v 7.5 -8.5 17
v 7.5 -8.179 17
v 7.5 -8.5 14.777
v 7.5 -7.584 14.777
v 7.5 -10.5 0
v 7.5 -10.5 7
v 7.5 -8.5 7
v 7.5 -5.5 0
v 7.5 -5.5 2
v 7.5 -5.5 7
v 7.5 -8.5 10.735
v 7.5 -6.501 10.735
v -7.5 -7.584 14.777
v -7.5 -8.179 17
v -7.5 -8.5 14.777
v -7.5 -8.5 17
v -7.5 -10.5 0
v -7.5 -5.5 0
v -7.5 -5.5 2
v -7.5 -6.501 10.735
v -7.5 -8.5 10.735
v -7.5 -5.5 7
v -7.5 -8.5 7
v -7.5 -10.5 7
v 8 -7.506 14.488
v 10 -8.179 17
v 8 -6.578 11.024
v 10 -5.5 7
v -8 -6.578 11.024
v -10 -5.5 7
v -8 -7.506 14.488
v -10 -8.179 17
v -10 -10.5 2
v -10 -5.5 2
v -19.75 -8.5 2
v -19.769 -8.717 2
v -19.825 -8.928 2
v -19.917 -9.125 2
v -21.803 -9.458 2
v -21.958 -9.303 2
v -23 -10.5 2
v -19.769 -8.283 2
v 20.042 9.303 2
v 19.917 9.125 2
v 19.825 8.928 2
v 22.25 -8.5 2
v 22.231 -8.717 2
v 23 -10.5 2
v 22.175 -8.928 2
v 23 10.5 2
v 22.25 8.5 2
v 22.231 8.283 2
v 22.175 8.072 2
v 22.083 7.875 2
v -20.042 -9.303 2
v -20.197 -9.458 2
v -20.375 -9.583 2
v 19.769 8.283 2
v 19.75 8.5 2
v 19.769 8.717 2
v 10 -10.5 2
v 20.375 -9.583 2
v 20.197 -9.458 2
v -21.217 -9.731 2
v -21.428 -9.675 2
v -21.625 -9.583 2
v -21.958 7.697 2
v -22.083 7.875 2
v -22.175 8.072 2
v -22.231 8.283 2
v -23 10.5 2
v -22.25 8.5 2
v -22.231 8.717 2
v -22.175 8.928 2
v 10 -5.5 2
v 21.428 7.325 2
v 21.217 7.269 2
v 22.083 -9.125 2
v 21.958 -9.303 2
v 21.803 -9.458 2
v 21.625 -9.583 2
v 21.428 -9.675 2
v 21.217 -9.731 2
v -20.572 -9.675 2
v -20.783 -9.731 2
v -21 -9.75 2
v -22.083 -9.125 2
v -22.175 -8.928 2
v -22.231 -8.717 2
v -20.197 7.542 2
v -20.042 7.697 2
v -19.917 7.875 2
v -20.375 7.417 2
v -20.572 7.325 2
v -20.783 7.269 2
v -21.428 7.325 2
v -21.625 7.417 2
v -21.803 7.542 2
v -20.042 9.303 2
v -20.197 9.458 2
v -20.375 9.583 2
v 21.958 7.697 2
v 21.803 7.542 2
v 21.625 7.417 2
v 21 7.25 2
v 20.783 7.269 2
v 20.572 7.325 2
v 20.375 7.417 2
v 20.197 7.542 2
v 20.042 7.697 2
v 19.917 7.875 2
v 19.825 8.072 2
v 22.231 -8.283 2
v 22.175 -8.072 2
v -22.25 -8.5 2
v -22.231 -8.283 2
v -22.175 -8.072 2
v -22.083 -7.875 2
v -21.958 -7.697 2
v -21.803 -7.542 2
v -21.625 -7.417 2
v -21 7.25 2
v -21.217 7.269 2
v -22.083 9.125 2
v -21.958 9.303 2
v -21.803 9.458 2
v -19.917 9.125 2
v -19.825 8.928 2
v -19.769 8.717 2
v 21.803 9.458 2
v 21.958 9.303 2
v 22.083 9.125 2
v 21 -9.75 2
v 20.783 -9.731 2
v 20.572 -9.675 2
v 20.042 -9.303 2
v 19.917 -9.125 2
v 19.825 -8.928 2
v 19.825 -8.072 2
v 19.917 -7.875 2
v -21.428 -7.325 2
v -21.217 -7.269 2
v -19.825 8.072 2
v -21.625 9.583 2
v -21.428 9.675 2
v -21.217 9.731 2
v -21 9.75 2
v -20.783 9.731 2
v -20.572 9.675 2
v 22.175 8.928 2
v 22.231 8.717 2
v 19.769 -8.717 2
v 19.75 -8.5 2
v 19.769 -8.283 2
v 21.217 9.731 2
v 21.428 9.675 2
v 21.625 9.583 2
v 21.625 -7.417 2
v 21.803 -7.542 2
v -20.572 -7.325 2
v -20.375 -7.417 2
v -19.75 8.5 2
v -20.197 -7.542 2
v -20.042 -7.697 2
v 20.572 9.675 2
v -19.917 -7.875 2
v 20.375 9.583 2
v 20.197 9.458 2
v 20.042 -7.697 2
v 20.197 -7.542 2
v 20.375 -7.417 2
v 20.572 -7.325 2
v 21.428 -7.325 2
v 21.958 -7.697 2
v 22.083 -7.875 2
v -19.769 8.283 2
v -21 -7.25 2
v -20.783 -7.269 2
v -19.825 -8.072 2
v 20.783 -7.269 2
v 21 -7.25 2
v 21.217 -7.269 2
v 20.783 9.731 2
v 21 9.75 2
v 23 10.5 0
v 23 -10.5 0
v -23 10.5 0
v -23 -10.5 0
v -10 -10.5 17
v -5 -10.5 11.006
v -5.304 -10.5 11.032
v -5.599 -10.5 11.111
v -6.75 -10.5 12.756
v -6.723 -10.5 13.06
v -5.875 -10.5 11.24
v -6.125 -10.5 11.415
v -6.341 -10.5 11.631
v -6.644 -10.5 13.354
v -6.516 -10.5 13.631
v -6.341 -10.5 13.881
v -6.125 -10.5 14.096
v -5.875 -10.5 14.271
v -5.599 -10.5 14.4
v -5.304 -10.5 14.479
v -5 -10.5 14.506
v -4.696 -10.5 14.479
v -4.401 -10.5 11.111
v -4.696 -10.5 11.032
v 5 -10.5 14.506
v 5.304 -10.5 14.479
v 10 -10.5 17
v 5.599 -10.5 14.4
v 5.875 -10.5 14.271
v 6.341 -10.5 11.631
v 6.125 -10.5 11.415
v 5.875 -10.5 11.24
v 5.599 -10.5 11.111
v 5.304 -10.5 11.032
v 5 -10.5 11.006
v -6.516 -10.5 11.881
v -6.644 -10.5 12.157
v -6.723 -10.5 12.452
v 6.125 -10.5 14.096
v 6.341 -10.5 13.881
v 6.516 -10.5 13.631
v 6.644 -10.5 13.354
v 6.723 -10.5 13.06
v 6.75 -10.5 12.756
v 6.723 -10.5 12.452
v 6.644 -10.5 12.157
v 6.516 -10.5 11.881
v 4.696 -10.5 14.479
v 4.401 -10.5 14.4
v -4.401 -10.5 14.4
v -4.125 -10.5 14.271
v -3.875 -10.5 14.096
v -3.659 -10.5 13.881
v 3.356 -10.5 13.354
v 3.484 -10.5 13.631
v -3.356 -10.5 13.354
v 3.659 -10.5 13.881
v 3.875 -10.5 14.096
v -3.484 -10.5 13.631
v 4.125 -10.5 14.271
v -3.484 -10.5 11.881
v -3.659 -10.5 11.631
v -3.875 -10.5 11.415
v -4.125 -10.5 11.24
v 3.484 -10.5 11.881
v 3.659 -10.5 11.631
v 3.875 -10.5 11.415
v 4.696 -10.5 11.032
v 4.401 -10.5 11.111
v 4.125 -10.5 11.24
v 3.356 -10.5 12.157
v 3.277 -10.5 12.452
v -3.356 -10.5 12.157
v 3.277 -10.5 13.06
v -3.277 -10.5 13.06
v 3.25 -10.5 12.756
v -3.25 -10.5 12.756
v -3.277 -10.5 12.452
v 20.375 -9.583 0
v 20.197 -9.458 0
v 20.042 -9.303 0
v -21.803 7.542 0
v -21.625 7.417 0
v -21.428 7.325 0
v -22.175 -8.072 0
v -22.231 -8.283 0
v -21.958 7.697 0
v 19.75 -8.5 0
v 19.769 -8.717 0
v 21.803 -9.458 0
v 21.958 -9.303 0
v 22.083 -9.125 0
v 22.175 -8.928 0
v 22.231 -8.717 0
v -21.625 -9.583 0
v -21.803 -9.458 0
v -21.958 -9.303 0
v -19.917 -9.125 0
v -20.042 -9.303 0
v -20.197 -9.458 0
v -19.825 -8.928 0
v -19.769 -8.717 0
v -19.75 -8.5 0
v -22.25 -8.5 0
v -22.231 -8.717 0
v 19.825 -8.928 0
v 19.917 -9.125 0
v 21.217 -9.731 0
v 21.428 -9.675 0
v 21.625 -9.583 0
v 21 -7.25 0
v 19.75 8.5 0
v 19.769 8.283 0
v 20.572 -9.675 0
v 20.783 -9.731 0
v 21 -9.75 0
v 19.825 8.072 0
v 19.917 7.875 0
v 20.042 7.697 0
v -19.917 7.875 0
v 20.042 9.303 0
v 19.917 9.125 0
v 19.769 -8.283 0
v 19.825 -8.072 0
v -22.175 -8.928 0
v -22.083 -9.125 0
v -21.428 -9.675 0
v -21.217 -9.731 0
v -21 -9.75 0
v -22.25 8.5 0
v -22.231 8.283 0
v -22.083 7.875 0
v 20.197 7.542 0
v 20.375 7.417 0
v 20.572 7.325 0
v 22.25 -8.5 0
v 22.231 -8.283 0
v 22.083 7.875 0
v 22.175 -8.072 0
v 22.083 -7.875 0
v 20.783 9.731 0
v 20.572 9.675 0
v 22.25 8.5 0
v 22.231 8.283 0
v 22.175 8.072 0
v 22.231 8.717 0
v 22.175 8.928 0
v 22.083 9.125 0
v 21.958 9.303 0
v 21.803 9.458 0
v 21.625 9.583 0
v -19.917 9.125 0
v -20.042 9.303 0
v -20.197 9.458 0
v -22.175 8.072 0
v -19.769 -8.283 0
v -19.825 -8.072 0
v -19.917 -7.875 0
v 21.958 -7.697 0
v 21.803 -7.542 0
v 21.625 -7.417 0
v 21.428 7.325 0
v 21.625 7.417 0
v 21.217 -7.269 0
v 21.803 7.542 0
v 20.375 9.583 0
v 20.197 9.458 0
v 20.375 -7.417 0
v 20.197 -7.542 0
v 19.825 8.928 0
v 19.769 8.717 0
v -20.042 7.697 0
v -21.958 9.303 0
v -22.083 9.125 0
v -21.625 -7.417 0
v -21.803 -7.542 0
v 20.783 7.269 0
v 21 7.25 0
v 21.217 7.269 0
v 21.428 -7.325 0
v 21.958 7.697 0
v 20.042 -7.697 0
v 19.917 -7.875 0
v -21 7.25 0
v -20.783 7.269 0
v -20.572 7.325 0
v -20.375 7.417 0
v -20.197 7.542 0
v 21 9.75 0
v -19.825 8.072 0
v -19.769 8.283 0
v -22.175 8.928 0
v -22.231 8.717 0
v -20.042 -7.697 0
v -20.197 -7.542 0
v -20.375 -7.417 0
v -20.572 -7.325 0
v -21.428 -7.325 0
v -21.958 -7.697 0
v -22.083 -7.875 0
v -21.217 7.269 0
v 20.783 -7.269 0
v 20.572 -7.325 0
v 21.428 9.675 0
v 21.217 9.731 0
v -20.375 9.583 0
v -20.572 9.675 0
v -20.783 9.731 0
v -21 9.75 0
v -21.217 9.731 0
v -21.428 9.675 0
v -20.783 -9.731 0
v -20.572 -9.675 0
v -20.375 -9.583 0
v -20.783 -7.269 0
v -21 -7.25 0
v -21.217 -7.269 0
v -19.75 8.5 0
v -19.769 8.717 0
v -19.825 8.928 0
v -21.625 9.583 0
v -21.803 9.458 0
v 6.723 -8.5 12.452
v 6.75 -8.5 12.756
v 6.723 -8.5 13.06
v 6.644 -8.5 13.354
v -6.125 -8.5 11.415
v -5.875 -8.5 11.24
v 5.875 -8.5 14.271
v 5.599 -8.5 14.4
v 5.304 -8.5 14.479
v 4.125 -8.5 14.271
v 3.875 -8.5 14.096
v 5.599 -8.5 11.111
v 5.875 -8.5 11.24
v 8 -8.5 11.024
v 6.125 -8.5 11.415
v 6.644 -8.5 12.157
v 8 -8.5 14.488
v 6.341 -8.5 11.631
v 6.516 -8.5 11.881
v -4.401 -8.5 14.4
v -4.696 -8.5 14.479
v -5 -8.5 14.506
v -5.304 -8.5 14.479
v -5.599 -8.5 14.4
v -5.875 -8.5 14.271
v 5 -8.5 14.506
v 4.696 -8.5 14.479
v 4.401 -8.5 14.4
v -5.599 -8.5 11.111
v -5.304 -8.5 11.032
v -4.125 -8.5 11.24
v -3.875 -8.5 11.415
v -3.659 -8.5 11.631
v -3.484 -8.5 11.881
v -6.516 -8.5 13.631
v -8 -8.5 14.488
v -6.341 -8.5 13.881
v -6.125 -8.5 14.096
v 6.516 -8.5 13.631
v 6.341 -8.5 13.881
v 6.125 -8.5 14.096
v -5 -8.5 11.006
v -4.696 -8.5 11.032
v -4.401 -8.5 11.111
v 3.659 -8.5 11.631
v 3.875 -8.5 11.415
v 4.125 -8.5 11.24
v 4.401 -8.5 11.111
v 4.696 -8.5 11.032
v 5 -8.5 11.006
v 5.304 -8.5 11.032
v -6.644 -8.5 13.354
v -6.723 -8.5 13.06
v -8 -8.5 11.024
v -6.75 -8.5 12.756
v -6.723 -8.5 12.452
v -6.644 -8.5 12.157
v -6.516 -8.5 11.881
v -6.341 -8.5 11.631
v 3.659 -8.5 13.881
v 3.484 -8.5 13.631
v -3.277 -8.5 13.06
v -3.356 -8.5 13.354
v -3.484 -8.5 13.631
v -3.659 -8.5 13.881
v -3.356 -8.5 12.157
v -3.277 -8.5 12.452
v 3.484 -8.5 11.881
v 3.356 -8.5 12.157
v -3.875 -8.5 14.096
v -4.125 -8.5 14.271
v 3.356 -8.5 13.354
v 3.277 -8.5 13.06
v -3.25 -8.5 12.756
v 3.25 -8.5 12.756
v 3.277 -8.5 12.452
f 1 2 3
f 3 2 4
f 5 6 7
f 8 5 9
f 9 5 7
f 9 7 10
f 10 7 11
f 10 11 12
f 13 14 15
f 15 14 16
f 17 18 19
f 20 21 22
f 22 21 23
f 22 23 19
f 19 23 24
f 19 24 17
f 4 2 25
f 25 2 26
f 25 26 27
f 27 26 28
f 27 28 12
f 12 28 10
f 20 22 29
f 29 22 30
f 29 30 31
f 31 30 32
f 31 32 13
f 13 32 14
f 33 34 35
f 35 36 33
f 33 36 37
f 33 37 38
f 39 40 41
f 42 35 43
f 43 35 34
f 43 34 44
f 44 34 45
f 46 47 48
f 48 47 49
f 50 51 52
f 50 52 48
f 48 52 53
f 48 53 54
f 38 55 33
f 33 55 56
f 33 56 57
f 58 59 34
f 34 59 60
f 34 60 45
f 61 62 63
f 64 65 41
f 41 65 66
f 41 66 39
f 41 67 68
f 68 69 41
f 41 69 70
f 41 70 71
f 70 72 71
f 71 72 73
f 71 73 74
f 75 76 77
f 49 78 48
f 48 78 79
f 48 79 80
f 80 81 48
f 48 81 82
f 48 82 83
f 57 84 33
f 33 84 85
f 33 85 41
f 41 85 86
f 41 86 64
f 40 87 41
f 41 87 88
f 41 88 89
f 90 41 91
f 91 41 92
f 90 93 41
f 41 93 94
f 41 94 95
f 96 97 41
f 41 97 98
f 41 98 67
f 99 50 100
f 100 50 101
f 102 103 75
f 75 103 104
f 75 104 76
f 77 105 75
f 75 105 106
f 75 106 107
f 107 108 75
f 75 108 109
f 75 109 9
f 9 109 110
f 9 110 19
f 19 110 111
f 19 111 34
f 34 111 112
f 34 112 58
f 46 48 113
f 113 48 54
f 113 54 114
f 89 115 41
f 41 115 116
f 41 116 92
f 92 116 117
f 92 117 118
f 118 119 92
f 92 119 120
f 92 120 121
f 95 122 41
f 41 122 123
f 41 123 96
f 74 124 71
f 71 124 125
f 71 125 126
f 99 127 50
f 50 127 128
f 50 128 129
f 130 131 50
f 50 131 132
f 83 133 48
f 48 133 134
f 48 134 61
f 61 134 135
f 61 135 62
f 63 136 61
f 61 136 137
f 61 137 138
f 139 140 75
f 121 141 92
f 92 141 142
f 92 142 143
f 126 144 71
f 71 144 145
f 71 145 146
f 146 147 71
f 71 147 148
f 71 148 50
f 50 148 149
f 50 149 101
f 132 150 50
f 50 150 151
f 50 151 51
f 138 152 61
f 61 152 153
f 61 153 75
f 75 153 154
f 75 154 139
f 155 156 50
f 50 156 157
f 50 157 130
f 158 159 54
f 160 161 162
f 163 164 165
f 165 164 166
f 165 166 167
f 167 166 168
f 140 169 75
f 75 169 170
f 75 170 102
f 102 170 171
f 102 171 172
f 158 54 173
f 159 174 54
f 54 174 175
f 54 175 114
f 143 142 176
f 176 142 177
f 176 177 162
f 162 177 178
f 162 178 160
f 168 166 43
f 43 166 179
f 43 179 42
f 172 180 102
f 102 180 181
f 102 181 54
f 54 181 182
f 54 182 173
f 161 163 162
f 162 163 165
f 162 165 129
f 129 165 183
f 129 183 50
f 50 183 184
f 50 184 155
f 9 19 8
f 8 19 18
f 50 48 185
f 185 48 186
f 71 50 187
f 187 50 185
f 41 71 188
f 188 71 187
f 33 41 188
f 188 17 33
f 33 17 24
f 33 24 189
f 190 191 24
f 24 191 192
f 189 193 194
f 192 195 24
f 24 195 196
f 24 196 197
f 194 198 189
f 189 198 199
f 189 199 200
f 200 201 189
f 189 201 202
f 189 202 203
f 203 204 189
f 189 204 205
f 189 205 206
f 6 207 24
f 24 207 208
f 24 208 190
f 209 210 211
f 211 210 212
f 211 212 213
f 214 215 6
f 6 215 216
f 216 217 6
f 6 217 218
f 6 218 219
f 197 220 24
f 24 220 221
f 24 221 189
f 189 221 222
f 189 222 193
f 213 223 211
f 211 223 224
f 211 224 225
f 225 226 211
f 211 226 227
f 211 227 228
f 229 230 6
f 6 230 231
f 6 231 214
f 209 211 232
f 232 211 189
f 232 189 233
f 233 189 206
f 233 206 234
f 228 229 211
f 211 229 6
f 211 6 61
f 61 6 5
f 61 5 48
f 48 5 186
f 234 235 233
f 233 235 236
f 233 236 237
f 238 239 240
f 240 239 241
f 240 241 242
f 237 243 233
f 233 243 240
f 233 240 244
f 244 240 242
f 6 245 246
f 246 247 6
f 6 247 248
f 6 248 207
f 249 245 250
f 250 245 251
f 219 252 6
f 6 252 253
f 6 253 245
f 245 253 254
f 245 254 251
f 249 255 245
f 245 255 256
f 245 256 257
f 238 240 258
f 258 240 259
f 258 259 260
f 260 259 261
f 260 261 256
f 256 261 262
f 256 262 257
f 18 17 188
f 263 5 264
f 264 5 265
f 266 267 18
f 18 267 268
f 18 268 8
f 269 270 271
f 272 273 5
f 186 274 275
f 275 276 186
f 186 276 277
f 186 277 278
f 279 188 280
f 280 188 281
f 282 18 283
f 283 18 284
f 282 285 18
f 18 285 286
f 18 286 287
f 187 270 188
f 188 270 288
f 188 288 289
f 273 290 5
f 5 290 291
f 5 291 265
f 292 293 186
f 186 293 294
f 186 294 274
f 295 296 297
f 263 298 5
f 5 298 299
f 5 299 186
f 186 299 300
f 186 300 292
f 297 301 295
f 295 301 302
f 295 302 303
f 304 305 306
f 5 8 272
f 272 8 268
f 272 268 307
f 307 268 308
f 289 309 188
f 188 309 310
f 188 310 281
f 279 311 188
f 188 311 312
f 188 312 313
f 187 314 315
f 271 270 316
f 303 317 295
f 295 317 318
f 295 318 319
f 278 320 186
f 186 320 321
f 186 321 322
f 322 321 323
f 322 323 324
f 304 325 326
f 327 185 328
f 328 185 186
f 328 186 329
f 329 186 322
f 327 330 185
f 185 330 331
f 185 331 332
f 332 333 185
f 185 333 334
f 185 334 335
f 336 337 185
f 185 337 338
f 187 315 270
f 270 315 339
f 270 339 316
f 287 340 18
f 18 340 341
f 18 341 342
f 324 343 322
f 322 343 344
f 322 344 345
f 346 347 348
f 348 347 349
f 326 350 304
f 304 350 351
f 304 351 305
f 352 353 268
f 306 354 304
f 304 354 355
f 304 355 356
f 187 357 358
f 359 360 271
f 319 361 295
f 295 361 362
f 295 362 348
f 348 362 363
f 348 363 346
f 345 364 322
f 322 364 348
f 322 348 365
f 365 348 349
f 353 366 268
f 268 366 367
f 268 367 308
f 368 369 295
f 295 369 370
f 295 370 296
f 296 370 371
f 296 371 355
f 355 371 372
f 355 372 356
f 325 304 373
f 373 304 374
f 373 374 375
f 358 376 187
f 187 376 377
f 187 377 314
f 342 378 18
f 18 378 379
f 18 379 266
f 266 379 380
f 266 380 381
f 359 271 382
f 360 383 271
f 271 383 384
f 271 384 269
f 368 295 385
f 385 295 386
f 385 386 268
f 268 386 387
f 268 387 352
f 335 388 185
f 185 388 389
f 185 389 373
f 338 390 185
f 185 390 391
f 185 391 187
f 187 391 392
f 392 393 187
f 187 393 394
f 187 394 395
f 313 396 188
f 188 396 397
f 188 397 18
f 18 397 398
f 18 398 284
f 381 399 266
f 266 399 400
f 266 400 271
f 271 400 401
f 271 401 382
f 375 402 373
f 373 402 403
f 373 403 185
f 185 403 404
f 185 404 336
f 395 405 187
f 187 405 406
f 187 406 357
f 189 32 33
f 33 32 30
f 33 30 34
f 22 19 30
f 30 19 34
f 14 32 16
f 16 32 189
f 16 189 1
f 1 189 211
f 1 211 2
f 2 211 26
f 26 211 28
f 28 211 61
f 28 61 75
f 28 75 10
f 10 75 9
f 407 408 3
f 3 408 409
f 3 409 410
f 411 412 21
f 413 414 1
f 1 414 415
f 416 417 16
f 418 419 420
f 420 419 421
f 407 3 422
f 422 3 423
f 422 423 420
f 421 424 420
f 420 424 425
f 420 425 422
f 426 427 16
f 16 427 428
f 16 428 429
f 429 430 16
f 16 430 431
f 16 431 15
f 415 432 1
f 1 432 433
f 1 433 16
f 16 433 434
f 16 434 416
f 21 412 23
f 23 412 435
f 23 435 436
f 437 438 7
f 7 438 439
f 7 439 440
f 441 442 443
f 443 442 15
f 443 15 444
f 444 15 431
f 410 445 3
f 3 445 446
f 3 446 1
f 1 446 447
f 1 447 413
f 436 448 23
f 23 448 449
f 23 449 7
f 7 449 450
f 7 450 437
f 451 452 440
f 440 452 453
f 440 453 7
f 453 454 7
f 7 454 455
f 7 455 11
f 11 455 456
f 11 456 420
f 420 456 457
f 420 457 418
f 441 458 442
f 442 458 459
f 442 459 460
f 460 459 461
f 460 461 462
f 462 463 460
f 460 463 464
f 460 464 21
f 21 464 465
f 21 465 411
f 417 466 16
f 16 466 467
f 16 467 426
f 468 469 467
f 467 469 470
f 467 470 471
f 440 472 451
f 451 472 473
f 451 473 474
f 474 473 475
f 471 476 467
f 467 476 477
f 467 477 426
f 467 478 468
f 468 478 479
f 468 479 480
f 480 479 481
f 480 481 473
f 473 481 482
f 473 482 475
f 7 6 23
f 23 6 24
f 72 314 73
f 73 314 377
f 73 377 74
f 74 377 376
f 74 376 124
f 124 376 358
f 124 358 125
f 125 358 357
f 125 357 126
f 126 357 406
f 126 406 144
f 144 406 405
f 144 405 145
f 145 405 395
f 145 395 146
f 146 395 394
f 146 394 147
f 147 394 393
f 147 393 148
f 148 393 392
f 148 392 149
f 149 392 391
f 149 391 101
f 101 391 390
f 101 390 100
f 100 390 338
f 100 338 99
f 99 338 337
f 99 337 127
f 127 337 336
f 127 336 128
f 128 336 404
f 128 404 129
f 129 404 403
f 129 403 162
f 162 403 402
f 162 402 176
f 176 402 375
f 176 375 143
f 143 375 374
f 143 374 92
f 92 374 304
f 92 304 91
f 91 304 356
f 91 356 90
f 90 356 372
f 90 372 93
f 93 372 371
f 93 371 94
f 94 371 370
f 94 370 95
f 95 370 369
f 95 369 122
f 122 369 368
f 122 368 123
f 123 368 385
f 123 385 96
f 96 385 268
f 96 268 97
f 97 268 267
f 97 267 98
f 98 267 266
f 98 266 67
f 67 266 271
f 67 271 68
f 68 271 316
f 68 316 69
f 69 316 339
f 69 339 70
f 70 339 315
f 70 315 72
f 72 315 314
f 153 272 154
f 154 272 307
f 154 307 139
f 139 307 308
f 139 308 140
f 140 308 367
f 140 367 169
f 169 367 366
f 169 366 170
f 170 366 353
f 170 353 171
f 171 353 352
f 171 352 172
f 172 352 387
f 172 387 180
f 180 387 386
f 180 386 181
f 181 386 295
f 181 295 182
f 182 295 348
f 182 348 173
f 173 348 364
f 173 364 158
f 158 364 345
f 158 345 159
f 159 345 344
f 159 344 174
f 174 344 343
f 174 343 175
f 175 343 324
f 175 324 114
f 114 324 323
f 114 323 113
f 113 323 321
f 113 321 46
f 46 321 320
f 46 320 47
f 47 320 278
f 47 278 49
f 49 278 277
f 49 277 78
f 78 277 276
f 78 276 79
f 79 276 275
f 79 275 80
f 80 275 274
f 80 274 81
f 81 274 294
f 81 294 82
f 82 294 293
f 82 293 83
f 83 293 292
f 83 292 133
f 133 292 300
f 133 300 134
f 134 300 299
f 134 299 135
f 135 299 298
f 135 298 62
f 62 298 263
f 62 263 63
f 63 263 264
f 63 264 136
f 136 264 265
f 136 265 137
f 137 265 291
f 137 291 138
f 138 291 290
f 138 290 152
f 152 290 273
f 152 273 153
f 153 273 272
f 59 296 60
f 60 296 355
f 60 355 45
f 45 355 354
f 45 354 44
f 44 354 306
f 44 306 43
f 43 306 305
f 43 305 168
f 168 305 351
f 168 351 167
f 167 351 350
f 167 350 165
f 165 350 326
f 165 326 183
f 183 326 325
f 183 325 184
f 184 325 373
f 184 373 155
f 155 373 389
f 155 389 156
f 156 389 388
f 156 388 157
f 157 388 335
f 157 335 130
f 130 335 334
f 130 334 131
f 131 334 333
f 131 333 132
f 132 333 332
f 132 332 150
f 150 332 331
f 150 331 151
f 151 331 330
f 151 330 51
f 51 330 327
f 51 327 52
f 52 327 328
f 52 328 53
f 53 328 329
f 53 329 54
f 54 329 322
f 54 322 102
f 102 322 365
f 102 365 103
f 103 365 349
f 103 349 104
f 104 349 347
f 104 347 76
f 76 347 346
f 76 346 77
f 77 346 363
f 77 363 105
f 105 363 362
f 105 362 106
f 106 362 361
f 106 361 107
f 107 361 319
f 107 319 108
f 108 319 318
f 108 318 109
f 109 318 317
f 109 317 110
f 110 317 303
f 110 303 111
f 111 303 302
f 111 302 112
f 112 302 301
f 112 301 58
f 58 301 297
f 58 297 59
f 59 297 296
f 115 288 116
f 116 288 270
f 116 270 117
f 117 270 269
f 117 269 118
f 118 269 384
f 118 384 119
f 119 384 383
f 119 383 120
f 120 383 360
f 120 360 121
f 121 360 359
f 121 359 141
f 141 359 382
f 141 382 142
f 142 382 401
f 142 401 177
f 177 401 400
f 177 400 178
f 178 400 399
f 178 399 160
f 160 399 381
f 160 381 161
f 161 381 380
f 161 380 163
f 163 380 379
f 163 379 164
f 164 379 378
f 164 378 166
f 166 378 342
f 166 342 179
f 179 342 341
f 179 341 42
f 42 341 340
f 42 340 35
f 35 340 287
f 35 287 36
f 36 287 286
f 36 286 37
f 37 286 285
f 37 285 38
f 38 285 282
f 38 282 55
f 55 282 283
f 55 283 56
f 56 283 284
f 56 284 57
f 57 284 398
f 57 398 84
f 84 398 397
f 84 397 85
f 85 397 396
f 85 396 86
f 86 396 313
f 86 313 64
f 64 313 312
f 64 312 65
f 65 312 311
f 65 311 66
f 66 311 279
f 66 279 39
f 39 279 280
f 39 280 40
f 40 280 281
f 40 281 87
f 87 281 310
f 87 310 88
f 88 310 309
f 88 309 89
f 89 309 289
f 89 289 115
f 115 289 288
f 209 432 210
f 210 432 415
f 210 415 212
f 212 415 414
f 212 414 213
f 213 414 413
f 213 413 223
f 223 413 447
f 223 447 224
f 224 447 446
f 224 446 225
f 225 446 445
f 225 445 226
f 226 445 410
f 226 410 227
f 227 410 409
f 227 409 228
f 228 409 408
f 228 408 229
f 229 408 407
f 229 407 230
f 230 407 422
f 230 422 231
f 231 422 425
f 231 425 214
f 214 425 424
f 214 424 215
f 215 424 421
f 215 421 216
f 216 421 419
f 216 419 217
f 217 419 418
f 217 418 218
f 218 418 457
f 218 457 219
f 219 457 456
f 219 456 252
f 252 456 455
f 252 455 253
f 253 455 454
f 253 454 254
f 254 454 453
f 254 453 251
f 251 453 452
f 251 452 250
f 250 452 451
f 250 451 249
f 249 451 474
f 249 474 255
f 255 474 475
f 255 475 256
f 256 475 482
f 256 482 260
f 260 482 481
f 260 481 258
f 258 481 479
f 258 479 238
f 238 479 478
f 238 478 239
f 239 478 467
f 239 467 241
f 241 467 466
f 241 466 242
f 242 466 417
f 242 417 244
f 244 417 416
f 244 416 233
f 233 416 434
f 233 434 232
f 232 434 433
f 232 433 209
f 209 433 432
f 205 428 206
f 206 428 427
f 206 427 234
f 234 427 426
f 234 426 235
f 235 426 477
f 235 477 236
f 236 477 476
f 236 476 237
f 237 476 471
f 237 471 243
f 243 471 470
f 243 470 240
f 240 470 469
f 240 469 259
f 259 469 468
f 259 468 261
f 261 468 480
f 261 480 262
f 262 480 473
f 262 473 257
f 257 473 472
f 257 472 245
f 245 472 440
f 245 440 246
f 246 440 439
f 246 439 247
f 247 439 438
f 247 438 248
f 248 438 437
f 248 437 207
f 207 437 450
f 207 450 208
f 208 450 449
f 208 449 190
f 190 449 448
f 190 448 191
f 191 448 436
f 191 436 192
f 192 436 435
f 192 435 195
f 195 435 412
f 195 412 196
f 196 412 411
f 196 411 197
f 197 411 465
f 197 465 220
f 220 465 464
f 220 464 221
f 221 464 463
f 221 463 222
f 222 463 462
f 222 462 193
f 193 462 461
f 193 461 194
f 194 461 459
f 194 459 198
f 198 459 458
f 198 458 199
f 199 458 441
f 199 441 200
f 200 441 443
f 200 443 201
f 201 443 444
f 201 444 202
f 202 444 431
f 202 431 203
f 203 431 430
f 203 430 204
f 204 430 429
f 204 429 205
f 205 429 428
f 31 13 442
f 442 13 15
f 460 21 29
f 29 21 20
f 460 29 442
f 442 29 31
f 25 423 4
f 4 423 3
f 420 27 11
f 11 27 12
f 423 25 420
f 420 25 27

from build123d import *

# Parameters (mm, degrees)
BOSS_EXTRUDE1_DEPTH   = 2
SKETCH2_W             = 2.5
SKETCH2_H             = 5
BOSS_EXTRUDE2_DEPTH   = 15
SKETCH5_W             = 15
SKETCH5_H             = 2
BOSS_EXTRUDE3_DEPTH   = 10
CHAMFER1_SIZE         = 10
CHAMFER1_SIZE2        = 2.679491924
CHAMFER1_PART_2_SIZE  = 10
CHAMFER1_PART_2_SIZE2 = 2.679491924
SKETCH6_R             = 1.25
CUT_EXTRUDE1_DEPTH    = 18
SKETCH7_R             = 1.75
CUT_EXTRUDE2_DEPTH    = 3
CUT_EXTRUDE3_DEPTH    = 20


with BuildPart() as part:
    # Sketch1 → Boss-Extrude1 (new body)
    with BuildSketch(Plane.XY):
        Polygon((23, 10.5), (-23, 10.5), (-23, -10.5), (-7.5, -10.5), (-7.5, -5.5), (7.5, -5.5), (7.5, -10.5), (23, -10.5), align=None)
    extrude(amount=BOSS_EXTRUDE1_DEPTH)

    # Sketch2 → Boss-Extrude2 (add)
    with BuildSketch(Plane.XY.offset(2)):
        with Locations((-8.75, -8)):
            Rectangle(SKETCH2_W, SKETCH2_H)
        with Locations((8.75, -8)):
            Rectangle(SKETCH2_W, SKETCH2_H)
    extrude(amount=BOSS_EXTRUDE2_DEPTH)

    # Sketch5 → Boss-Extrude3 (add)
    with BuildSketch(Plane.XY.offset(17)):
        with Locations((0, -9.5)):
            Rectangle(SKETCH5_W, SKETCH5_H)
    extrude(amount=-BOSS_EXTRUDE3_DEPTH)

    # Chamfer1
    chamfer1_edges = [part.edges().sort_by_distance(p)[0] for p in [
        (-8.75, -5.5, 17),
    ]]
    chamfer1_side = [part.faces().sort_by_distance(p)[0] for p in [
        (-8.75, -5.5, 9.5),
    ]]
    chamfer(chamfer1_edges, length=CHAMFER1_SIZE, length2=CHAMFER1_SIZE2, reference=chamfer1_side[0])

    # Chamfer1 part 2
    chamfer1_part_2_edges = [part.edges().sort_by_distance(p)[0] for p in [
        (8.75, -5.5, 17),
    ]]
    chamfer1_part_2_side = [part.faces().sort_by_distance(p)[0] for p in [
        (8.75, -5.5, 9.5),
    ]]
    chamfer(chamfer1_part_2_edges, length=CHAMFER1_PART_2_SIZE, length2=CHAMFER1_PART_2_SIZE2, reference=chamfer1_part_2_side[0])

    # Sketch6 → Cut-Extrude1 (cut, through all)
    with BuildSketch(Plane(origin=(0, 0, 0), x_dir=(-1, 0, 0), z_dir=(0, 0, -1))):
        with Locations((21, 8.5)):
            Circle(SKETCH6_R)
        with Locations((-21, -8.5)):
            Circle(SKETCH6_R)
        with Locations((-21, 8.5)):
            Circle(SKETCH6_R)
        with Locations((21, -8.5)):
            Circle(SKETCH6_R)
    extrude(amount=-CUT_EXTRUDE1_DEPTH, mode=Mode.SUBTRACT)

    # Sketch7 → Cut-Extrude2 (cut, through all)
    with BuildSketch(Plane(origin=(0, -8.5, 0), x_dir=(1, 0, 0), z_dir=(0, 1, 0))):
        with Locations((-5, -12.755907313)):
            Circle(SKETCH7_R)
        with Locations((5, -12.755907313)):
            Circle(SKETCH7_R)
    extrude(amount=-CUT_EXTRUDE2_DEPTH, mode=Mode.SUBTRACT)

    # Sketch8 → Cut-Extrude3 (cut, through all)
    with BuildSketch(Plane(origin=(0, -8.5, 0), x_dir=(1, 0, 0), z_dir=(0, 1, 0))):
        Polygon((5, -16.220008928), (8, -14.487958121), (8, -11.023856505), (5, -9.291805698), (2, -11.023856505), (2, -14.487958121), align=None)
        Polygon((-5, -16.220008928), (-2, -14.487958121), (-2, -11.023856505), (-5, -9.291805698), (-8, -11.023856505), (-8, -14.487958121), align=None)
    extrude(amount=CUT_EXTRUDE3_DEPTH, mode=Mode.SUBTRACT)


solid = part.part
